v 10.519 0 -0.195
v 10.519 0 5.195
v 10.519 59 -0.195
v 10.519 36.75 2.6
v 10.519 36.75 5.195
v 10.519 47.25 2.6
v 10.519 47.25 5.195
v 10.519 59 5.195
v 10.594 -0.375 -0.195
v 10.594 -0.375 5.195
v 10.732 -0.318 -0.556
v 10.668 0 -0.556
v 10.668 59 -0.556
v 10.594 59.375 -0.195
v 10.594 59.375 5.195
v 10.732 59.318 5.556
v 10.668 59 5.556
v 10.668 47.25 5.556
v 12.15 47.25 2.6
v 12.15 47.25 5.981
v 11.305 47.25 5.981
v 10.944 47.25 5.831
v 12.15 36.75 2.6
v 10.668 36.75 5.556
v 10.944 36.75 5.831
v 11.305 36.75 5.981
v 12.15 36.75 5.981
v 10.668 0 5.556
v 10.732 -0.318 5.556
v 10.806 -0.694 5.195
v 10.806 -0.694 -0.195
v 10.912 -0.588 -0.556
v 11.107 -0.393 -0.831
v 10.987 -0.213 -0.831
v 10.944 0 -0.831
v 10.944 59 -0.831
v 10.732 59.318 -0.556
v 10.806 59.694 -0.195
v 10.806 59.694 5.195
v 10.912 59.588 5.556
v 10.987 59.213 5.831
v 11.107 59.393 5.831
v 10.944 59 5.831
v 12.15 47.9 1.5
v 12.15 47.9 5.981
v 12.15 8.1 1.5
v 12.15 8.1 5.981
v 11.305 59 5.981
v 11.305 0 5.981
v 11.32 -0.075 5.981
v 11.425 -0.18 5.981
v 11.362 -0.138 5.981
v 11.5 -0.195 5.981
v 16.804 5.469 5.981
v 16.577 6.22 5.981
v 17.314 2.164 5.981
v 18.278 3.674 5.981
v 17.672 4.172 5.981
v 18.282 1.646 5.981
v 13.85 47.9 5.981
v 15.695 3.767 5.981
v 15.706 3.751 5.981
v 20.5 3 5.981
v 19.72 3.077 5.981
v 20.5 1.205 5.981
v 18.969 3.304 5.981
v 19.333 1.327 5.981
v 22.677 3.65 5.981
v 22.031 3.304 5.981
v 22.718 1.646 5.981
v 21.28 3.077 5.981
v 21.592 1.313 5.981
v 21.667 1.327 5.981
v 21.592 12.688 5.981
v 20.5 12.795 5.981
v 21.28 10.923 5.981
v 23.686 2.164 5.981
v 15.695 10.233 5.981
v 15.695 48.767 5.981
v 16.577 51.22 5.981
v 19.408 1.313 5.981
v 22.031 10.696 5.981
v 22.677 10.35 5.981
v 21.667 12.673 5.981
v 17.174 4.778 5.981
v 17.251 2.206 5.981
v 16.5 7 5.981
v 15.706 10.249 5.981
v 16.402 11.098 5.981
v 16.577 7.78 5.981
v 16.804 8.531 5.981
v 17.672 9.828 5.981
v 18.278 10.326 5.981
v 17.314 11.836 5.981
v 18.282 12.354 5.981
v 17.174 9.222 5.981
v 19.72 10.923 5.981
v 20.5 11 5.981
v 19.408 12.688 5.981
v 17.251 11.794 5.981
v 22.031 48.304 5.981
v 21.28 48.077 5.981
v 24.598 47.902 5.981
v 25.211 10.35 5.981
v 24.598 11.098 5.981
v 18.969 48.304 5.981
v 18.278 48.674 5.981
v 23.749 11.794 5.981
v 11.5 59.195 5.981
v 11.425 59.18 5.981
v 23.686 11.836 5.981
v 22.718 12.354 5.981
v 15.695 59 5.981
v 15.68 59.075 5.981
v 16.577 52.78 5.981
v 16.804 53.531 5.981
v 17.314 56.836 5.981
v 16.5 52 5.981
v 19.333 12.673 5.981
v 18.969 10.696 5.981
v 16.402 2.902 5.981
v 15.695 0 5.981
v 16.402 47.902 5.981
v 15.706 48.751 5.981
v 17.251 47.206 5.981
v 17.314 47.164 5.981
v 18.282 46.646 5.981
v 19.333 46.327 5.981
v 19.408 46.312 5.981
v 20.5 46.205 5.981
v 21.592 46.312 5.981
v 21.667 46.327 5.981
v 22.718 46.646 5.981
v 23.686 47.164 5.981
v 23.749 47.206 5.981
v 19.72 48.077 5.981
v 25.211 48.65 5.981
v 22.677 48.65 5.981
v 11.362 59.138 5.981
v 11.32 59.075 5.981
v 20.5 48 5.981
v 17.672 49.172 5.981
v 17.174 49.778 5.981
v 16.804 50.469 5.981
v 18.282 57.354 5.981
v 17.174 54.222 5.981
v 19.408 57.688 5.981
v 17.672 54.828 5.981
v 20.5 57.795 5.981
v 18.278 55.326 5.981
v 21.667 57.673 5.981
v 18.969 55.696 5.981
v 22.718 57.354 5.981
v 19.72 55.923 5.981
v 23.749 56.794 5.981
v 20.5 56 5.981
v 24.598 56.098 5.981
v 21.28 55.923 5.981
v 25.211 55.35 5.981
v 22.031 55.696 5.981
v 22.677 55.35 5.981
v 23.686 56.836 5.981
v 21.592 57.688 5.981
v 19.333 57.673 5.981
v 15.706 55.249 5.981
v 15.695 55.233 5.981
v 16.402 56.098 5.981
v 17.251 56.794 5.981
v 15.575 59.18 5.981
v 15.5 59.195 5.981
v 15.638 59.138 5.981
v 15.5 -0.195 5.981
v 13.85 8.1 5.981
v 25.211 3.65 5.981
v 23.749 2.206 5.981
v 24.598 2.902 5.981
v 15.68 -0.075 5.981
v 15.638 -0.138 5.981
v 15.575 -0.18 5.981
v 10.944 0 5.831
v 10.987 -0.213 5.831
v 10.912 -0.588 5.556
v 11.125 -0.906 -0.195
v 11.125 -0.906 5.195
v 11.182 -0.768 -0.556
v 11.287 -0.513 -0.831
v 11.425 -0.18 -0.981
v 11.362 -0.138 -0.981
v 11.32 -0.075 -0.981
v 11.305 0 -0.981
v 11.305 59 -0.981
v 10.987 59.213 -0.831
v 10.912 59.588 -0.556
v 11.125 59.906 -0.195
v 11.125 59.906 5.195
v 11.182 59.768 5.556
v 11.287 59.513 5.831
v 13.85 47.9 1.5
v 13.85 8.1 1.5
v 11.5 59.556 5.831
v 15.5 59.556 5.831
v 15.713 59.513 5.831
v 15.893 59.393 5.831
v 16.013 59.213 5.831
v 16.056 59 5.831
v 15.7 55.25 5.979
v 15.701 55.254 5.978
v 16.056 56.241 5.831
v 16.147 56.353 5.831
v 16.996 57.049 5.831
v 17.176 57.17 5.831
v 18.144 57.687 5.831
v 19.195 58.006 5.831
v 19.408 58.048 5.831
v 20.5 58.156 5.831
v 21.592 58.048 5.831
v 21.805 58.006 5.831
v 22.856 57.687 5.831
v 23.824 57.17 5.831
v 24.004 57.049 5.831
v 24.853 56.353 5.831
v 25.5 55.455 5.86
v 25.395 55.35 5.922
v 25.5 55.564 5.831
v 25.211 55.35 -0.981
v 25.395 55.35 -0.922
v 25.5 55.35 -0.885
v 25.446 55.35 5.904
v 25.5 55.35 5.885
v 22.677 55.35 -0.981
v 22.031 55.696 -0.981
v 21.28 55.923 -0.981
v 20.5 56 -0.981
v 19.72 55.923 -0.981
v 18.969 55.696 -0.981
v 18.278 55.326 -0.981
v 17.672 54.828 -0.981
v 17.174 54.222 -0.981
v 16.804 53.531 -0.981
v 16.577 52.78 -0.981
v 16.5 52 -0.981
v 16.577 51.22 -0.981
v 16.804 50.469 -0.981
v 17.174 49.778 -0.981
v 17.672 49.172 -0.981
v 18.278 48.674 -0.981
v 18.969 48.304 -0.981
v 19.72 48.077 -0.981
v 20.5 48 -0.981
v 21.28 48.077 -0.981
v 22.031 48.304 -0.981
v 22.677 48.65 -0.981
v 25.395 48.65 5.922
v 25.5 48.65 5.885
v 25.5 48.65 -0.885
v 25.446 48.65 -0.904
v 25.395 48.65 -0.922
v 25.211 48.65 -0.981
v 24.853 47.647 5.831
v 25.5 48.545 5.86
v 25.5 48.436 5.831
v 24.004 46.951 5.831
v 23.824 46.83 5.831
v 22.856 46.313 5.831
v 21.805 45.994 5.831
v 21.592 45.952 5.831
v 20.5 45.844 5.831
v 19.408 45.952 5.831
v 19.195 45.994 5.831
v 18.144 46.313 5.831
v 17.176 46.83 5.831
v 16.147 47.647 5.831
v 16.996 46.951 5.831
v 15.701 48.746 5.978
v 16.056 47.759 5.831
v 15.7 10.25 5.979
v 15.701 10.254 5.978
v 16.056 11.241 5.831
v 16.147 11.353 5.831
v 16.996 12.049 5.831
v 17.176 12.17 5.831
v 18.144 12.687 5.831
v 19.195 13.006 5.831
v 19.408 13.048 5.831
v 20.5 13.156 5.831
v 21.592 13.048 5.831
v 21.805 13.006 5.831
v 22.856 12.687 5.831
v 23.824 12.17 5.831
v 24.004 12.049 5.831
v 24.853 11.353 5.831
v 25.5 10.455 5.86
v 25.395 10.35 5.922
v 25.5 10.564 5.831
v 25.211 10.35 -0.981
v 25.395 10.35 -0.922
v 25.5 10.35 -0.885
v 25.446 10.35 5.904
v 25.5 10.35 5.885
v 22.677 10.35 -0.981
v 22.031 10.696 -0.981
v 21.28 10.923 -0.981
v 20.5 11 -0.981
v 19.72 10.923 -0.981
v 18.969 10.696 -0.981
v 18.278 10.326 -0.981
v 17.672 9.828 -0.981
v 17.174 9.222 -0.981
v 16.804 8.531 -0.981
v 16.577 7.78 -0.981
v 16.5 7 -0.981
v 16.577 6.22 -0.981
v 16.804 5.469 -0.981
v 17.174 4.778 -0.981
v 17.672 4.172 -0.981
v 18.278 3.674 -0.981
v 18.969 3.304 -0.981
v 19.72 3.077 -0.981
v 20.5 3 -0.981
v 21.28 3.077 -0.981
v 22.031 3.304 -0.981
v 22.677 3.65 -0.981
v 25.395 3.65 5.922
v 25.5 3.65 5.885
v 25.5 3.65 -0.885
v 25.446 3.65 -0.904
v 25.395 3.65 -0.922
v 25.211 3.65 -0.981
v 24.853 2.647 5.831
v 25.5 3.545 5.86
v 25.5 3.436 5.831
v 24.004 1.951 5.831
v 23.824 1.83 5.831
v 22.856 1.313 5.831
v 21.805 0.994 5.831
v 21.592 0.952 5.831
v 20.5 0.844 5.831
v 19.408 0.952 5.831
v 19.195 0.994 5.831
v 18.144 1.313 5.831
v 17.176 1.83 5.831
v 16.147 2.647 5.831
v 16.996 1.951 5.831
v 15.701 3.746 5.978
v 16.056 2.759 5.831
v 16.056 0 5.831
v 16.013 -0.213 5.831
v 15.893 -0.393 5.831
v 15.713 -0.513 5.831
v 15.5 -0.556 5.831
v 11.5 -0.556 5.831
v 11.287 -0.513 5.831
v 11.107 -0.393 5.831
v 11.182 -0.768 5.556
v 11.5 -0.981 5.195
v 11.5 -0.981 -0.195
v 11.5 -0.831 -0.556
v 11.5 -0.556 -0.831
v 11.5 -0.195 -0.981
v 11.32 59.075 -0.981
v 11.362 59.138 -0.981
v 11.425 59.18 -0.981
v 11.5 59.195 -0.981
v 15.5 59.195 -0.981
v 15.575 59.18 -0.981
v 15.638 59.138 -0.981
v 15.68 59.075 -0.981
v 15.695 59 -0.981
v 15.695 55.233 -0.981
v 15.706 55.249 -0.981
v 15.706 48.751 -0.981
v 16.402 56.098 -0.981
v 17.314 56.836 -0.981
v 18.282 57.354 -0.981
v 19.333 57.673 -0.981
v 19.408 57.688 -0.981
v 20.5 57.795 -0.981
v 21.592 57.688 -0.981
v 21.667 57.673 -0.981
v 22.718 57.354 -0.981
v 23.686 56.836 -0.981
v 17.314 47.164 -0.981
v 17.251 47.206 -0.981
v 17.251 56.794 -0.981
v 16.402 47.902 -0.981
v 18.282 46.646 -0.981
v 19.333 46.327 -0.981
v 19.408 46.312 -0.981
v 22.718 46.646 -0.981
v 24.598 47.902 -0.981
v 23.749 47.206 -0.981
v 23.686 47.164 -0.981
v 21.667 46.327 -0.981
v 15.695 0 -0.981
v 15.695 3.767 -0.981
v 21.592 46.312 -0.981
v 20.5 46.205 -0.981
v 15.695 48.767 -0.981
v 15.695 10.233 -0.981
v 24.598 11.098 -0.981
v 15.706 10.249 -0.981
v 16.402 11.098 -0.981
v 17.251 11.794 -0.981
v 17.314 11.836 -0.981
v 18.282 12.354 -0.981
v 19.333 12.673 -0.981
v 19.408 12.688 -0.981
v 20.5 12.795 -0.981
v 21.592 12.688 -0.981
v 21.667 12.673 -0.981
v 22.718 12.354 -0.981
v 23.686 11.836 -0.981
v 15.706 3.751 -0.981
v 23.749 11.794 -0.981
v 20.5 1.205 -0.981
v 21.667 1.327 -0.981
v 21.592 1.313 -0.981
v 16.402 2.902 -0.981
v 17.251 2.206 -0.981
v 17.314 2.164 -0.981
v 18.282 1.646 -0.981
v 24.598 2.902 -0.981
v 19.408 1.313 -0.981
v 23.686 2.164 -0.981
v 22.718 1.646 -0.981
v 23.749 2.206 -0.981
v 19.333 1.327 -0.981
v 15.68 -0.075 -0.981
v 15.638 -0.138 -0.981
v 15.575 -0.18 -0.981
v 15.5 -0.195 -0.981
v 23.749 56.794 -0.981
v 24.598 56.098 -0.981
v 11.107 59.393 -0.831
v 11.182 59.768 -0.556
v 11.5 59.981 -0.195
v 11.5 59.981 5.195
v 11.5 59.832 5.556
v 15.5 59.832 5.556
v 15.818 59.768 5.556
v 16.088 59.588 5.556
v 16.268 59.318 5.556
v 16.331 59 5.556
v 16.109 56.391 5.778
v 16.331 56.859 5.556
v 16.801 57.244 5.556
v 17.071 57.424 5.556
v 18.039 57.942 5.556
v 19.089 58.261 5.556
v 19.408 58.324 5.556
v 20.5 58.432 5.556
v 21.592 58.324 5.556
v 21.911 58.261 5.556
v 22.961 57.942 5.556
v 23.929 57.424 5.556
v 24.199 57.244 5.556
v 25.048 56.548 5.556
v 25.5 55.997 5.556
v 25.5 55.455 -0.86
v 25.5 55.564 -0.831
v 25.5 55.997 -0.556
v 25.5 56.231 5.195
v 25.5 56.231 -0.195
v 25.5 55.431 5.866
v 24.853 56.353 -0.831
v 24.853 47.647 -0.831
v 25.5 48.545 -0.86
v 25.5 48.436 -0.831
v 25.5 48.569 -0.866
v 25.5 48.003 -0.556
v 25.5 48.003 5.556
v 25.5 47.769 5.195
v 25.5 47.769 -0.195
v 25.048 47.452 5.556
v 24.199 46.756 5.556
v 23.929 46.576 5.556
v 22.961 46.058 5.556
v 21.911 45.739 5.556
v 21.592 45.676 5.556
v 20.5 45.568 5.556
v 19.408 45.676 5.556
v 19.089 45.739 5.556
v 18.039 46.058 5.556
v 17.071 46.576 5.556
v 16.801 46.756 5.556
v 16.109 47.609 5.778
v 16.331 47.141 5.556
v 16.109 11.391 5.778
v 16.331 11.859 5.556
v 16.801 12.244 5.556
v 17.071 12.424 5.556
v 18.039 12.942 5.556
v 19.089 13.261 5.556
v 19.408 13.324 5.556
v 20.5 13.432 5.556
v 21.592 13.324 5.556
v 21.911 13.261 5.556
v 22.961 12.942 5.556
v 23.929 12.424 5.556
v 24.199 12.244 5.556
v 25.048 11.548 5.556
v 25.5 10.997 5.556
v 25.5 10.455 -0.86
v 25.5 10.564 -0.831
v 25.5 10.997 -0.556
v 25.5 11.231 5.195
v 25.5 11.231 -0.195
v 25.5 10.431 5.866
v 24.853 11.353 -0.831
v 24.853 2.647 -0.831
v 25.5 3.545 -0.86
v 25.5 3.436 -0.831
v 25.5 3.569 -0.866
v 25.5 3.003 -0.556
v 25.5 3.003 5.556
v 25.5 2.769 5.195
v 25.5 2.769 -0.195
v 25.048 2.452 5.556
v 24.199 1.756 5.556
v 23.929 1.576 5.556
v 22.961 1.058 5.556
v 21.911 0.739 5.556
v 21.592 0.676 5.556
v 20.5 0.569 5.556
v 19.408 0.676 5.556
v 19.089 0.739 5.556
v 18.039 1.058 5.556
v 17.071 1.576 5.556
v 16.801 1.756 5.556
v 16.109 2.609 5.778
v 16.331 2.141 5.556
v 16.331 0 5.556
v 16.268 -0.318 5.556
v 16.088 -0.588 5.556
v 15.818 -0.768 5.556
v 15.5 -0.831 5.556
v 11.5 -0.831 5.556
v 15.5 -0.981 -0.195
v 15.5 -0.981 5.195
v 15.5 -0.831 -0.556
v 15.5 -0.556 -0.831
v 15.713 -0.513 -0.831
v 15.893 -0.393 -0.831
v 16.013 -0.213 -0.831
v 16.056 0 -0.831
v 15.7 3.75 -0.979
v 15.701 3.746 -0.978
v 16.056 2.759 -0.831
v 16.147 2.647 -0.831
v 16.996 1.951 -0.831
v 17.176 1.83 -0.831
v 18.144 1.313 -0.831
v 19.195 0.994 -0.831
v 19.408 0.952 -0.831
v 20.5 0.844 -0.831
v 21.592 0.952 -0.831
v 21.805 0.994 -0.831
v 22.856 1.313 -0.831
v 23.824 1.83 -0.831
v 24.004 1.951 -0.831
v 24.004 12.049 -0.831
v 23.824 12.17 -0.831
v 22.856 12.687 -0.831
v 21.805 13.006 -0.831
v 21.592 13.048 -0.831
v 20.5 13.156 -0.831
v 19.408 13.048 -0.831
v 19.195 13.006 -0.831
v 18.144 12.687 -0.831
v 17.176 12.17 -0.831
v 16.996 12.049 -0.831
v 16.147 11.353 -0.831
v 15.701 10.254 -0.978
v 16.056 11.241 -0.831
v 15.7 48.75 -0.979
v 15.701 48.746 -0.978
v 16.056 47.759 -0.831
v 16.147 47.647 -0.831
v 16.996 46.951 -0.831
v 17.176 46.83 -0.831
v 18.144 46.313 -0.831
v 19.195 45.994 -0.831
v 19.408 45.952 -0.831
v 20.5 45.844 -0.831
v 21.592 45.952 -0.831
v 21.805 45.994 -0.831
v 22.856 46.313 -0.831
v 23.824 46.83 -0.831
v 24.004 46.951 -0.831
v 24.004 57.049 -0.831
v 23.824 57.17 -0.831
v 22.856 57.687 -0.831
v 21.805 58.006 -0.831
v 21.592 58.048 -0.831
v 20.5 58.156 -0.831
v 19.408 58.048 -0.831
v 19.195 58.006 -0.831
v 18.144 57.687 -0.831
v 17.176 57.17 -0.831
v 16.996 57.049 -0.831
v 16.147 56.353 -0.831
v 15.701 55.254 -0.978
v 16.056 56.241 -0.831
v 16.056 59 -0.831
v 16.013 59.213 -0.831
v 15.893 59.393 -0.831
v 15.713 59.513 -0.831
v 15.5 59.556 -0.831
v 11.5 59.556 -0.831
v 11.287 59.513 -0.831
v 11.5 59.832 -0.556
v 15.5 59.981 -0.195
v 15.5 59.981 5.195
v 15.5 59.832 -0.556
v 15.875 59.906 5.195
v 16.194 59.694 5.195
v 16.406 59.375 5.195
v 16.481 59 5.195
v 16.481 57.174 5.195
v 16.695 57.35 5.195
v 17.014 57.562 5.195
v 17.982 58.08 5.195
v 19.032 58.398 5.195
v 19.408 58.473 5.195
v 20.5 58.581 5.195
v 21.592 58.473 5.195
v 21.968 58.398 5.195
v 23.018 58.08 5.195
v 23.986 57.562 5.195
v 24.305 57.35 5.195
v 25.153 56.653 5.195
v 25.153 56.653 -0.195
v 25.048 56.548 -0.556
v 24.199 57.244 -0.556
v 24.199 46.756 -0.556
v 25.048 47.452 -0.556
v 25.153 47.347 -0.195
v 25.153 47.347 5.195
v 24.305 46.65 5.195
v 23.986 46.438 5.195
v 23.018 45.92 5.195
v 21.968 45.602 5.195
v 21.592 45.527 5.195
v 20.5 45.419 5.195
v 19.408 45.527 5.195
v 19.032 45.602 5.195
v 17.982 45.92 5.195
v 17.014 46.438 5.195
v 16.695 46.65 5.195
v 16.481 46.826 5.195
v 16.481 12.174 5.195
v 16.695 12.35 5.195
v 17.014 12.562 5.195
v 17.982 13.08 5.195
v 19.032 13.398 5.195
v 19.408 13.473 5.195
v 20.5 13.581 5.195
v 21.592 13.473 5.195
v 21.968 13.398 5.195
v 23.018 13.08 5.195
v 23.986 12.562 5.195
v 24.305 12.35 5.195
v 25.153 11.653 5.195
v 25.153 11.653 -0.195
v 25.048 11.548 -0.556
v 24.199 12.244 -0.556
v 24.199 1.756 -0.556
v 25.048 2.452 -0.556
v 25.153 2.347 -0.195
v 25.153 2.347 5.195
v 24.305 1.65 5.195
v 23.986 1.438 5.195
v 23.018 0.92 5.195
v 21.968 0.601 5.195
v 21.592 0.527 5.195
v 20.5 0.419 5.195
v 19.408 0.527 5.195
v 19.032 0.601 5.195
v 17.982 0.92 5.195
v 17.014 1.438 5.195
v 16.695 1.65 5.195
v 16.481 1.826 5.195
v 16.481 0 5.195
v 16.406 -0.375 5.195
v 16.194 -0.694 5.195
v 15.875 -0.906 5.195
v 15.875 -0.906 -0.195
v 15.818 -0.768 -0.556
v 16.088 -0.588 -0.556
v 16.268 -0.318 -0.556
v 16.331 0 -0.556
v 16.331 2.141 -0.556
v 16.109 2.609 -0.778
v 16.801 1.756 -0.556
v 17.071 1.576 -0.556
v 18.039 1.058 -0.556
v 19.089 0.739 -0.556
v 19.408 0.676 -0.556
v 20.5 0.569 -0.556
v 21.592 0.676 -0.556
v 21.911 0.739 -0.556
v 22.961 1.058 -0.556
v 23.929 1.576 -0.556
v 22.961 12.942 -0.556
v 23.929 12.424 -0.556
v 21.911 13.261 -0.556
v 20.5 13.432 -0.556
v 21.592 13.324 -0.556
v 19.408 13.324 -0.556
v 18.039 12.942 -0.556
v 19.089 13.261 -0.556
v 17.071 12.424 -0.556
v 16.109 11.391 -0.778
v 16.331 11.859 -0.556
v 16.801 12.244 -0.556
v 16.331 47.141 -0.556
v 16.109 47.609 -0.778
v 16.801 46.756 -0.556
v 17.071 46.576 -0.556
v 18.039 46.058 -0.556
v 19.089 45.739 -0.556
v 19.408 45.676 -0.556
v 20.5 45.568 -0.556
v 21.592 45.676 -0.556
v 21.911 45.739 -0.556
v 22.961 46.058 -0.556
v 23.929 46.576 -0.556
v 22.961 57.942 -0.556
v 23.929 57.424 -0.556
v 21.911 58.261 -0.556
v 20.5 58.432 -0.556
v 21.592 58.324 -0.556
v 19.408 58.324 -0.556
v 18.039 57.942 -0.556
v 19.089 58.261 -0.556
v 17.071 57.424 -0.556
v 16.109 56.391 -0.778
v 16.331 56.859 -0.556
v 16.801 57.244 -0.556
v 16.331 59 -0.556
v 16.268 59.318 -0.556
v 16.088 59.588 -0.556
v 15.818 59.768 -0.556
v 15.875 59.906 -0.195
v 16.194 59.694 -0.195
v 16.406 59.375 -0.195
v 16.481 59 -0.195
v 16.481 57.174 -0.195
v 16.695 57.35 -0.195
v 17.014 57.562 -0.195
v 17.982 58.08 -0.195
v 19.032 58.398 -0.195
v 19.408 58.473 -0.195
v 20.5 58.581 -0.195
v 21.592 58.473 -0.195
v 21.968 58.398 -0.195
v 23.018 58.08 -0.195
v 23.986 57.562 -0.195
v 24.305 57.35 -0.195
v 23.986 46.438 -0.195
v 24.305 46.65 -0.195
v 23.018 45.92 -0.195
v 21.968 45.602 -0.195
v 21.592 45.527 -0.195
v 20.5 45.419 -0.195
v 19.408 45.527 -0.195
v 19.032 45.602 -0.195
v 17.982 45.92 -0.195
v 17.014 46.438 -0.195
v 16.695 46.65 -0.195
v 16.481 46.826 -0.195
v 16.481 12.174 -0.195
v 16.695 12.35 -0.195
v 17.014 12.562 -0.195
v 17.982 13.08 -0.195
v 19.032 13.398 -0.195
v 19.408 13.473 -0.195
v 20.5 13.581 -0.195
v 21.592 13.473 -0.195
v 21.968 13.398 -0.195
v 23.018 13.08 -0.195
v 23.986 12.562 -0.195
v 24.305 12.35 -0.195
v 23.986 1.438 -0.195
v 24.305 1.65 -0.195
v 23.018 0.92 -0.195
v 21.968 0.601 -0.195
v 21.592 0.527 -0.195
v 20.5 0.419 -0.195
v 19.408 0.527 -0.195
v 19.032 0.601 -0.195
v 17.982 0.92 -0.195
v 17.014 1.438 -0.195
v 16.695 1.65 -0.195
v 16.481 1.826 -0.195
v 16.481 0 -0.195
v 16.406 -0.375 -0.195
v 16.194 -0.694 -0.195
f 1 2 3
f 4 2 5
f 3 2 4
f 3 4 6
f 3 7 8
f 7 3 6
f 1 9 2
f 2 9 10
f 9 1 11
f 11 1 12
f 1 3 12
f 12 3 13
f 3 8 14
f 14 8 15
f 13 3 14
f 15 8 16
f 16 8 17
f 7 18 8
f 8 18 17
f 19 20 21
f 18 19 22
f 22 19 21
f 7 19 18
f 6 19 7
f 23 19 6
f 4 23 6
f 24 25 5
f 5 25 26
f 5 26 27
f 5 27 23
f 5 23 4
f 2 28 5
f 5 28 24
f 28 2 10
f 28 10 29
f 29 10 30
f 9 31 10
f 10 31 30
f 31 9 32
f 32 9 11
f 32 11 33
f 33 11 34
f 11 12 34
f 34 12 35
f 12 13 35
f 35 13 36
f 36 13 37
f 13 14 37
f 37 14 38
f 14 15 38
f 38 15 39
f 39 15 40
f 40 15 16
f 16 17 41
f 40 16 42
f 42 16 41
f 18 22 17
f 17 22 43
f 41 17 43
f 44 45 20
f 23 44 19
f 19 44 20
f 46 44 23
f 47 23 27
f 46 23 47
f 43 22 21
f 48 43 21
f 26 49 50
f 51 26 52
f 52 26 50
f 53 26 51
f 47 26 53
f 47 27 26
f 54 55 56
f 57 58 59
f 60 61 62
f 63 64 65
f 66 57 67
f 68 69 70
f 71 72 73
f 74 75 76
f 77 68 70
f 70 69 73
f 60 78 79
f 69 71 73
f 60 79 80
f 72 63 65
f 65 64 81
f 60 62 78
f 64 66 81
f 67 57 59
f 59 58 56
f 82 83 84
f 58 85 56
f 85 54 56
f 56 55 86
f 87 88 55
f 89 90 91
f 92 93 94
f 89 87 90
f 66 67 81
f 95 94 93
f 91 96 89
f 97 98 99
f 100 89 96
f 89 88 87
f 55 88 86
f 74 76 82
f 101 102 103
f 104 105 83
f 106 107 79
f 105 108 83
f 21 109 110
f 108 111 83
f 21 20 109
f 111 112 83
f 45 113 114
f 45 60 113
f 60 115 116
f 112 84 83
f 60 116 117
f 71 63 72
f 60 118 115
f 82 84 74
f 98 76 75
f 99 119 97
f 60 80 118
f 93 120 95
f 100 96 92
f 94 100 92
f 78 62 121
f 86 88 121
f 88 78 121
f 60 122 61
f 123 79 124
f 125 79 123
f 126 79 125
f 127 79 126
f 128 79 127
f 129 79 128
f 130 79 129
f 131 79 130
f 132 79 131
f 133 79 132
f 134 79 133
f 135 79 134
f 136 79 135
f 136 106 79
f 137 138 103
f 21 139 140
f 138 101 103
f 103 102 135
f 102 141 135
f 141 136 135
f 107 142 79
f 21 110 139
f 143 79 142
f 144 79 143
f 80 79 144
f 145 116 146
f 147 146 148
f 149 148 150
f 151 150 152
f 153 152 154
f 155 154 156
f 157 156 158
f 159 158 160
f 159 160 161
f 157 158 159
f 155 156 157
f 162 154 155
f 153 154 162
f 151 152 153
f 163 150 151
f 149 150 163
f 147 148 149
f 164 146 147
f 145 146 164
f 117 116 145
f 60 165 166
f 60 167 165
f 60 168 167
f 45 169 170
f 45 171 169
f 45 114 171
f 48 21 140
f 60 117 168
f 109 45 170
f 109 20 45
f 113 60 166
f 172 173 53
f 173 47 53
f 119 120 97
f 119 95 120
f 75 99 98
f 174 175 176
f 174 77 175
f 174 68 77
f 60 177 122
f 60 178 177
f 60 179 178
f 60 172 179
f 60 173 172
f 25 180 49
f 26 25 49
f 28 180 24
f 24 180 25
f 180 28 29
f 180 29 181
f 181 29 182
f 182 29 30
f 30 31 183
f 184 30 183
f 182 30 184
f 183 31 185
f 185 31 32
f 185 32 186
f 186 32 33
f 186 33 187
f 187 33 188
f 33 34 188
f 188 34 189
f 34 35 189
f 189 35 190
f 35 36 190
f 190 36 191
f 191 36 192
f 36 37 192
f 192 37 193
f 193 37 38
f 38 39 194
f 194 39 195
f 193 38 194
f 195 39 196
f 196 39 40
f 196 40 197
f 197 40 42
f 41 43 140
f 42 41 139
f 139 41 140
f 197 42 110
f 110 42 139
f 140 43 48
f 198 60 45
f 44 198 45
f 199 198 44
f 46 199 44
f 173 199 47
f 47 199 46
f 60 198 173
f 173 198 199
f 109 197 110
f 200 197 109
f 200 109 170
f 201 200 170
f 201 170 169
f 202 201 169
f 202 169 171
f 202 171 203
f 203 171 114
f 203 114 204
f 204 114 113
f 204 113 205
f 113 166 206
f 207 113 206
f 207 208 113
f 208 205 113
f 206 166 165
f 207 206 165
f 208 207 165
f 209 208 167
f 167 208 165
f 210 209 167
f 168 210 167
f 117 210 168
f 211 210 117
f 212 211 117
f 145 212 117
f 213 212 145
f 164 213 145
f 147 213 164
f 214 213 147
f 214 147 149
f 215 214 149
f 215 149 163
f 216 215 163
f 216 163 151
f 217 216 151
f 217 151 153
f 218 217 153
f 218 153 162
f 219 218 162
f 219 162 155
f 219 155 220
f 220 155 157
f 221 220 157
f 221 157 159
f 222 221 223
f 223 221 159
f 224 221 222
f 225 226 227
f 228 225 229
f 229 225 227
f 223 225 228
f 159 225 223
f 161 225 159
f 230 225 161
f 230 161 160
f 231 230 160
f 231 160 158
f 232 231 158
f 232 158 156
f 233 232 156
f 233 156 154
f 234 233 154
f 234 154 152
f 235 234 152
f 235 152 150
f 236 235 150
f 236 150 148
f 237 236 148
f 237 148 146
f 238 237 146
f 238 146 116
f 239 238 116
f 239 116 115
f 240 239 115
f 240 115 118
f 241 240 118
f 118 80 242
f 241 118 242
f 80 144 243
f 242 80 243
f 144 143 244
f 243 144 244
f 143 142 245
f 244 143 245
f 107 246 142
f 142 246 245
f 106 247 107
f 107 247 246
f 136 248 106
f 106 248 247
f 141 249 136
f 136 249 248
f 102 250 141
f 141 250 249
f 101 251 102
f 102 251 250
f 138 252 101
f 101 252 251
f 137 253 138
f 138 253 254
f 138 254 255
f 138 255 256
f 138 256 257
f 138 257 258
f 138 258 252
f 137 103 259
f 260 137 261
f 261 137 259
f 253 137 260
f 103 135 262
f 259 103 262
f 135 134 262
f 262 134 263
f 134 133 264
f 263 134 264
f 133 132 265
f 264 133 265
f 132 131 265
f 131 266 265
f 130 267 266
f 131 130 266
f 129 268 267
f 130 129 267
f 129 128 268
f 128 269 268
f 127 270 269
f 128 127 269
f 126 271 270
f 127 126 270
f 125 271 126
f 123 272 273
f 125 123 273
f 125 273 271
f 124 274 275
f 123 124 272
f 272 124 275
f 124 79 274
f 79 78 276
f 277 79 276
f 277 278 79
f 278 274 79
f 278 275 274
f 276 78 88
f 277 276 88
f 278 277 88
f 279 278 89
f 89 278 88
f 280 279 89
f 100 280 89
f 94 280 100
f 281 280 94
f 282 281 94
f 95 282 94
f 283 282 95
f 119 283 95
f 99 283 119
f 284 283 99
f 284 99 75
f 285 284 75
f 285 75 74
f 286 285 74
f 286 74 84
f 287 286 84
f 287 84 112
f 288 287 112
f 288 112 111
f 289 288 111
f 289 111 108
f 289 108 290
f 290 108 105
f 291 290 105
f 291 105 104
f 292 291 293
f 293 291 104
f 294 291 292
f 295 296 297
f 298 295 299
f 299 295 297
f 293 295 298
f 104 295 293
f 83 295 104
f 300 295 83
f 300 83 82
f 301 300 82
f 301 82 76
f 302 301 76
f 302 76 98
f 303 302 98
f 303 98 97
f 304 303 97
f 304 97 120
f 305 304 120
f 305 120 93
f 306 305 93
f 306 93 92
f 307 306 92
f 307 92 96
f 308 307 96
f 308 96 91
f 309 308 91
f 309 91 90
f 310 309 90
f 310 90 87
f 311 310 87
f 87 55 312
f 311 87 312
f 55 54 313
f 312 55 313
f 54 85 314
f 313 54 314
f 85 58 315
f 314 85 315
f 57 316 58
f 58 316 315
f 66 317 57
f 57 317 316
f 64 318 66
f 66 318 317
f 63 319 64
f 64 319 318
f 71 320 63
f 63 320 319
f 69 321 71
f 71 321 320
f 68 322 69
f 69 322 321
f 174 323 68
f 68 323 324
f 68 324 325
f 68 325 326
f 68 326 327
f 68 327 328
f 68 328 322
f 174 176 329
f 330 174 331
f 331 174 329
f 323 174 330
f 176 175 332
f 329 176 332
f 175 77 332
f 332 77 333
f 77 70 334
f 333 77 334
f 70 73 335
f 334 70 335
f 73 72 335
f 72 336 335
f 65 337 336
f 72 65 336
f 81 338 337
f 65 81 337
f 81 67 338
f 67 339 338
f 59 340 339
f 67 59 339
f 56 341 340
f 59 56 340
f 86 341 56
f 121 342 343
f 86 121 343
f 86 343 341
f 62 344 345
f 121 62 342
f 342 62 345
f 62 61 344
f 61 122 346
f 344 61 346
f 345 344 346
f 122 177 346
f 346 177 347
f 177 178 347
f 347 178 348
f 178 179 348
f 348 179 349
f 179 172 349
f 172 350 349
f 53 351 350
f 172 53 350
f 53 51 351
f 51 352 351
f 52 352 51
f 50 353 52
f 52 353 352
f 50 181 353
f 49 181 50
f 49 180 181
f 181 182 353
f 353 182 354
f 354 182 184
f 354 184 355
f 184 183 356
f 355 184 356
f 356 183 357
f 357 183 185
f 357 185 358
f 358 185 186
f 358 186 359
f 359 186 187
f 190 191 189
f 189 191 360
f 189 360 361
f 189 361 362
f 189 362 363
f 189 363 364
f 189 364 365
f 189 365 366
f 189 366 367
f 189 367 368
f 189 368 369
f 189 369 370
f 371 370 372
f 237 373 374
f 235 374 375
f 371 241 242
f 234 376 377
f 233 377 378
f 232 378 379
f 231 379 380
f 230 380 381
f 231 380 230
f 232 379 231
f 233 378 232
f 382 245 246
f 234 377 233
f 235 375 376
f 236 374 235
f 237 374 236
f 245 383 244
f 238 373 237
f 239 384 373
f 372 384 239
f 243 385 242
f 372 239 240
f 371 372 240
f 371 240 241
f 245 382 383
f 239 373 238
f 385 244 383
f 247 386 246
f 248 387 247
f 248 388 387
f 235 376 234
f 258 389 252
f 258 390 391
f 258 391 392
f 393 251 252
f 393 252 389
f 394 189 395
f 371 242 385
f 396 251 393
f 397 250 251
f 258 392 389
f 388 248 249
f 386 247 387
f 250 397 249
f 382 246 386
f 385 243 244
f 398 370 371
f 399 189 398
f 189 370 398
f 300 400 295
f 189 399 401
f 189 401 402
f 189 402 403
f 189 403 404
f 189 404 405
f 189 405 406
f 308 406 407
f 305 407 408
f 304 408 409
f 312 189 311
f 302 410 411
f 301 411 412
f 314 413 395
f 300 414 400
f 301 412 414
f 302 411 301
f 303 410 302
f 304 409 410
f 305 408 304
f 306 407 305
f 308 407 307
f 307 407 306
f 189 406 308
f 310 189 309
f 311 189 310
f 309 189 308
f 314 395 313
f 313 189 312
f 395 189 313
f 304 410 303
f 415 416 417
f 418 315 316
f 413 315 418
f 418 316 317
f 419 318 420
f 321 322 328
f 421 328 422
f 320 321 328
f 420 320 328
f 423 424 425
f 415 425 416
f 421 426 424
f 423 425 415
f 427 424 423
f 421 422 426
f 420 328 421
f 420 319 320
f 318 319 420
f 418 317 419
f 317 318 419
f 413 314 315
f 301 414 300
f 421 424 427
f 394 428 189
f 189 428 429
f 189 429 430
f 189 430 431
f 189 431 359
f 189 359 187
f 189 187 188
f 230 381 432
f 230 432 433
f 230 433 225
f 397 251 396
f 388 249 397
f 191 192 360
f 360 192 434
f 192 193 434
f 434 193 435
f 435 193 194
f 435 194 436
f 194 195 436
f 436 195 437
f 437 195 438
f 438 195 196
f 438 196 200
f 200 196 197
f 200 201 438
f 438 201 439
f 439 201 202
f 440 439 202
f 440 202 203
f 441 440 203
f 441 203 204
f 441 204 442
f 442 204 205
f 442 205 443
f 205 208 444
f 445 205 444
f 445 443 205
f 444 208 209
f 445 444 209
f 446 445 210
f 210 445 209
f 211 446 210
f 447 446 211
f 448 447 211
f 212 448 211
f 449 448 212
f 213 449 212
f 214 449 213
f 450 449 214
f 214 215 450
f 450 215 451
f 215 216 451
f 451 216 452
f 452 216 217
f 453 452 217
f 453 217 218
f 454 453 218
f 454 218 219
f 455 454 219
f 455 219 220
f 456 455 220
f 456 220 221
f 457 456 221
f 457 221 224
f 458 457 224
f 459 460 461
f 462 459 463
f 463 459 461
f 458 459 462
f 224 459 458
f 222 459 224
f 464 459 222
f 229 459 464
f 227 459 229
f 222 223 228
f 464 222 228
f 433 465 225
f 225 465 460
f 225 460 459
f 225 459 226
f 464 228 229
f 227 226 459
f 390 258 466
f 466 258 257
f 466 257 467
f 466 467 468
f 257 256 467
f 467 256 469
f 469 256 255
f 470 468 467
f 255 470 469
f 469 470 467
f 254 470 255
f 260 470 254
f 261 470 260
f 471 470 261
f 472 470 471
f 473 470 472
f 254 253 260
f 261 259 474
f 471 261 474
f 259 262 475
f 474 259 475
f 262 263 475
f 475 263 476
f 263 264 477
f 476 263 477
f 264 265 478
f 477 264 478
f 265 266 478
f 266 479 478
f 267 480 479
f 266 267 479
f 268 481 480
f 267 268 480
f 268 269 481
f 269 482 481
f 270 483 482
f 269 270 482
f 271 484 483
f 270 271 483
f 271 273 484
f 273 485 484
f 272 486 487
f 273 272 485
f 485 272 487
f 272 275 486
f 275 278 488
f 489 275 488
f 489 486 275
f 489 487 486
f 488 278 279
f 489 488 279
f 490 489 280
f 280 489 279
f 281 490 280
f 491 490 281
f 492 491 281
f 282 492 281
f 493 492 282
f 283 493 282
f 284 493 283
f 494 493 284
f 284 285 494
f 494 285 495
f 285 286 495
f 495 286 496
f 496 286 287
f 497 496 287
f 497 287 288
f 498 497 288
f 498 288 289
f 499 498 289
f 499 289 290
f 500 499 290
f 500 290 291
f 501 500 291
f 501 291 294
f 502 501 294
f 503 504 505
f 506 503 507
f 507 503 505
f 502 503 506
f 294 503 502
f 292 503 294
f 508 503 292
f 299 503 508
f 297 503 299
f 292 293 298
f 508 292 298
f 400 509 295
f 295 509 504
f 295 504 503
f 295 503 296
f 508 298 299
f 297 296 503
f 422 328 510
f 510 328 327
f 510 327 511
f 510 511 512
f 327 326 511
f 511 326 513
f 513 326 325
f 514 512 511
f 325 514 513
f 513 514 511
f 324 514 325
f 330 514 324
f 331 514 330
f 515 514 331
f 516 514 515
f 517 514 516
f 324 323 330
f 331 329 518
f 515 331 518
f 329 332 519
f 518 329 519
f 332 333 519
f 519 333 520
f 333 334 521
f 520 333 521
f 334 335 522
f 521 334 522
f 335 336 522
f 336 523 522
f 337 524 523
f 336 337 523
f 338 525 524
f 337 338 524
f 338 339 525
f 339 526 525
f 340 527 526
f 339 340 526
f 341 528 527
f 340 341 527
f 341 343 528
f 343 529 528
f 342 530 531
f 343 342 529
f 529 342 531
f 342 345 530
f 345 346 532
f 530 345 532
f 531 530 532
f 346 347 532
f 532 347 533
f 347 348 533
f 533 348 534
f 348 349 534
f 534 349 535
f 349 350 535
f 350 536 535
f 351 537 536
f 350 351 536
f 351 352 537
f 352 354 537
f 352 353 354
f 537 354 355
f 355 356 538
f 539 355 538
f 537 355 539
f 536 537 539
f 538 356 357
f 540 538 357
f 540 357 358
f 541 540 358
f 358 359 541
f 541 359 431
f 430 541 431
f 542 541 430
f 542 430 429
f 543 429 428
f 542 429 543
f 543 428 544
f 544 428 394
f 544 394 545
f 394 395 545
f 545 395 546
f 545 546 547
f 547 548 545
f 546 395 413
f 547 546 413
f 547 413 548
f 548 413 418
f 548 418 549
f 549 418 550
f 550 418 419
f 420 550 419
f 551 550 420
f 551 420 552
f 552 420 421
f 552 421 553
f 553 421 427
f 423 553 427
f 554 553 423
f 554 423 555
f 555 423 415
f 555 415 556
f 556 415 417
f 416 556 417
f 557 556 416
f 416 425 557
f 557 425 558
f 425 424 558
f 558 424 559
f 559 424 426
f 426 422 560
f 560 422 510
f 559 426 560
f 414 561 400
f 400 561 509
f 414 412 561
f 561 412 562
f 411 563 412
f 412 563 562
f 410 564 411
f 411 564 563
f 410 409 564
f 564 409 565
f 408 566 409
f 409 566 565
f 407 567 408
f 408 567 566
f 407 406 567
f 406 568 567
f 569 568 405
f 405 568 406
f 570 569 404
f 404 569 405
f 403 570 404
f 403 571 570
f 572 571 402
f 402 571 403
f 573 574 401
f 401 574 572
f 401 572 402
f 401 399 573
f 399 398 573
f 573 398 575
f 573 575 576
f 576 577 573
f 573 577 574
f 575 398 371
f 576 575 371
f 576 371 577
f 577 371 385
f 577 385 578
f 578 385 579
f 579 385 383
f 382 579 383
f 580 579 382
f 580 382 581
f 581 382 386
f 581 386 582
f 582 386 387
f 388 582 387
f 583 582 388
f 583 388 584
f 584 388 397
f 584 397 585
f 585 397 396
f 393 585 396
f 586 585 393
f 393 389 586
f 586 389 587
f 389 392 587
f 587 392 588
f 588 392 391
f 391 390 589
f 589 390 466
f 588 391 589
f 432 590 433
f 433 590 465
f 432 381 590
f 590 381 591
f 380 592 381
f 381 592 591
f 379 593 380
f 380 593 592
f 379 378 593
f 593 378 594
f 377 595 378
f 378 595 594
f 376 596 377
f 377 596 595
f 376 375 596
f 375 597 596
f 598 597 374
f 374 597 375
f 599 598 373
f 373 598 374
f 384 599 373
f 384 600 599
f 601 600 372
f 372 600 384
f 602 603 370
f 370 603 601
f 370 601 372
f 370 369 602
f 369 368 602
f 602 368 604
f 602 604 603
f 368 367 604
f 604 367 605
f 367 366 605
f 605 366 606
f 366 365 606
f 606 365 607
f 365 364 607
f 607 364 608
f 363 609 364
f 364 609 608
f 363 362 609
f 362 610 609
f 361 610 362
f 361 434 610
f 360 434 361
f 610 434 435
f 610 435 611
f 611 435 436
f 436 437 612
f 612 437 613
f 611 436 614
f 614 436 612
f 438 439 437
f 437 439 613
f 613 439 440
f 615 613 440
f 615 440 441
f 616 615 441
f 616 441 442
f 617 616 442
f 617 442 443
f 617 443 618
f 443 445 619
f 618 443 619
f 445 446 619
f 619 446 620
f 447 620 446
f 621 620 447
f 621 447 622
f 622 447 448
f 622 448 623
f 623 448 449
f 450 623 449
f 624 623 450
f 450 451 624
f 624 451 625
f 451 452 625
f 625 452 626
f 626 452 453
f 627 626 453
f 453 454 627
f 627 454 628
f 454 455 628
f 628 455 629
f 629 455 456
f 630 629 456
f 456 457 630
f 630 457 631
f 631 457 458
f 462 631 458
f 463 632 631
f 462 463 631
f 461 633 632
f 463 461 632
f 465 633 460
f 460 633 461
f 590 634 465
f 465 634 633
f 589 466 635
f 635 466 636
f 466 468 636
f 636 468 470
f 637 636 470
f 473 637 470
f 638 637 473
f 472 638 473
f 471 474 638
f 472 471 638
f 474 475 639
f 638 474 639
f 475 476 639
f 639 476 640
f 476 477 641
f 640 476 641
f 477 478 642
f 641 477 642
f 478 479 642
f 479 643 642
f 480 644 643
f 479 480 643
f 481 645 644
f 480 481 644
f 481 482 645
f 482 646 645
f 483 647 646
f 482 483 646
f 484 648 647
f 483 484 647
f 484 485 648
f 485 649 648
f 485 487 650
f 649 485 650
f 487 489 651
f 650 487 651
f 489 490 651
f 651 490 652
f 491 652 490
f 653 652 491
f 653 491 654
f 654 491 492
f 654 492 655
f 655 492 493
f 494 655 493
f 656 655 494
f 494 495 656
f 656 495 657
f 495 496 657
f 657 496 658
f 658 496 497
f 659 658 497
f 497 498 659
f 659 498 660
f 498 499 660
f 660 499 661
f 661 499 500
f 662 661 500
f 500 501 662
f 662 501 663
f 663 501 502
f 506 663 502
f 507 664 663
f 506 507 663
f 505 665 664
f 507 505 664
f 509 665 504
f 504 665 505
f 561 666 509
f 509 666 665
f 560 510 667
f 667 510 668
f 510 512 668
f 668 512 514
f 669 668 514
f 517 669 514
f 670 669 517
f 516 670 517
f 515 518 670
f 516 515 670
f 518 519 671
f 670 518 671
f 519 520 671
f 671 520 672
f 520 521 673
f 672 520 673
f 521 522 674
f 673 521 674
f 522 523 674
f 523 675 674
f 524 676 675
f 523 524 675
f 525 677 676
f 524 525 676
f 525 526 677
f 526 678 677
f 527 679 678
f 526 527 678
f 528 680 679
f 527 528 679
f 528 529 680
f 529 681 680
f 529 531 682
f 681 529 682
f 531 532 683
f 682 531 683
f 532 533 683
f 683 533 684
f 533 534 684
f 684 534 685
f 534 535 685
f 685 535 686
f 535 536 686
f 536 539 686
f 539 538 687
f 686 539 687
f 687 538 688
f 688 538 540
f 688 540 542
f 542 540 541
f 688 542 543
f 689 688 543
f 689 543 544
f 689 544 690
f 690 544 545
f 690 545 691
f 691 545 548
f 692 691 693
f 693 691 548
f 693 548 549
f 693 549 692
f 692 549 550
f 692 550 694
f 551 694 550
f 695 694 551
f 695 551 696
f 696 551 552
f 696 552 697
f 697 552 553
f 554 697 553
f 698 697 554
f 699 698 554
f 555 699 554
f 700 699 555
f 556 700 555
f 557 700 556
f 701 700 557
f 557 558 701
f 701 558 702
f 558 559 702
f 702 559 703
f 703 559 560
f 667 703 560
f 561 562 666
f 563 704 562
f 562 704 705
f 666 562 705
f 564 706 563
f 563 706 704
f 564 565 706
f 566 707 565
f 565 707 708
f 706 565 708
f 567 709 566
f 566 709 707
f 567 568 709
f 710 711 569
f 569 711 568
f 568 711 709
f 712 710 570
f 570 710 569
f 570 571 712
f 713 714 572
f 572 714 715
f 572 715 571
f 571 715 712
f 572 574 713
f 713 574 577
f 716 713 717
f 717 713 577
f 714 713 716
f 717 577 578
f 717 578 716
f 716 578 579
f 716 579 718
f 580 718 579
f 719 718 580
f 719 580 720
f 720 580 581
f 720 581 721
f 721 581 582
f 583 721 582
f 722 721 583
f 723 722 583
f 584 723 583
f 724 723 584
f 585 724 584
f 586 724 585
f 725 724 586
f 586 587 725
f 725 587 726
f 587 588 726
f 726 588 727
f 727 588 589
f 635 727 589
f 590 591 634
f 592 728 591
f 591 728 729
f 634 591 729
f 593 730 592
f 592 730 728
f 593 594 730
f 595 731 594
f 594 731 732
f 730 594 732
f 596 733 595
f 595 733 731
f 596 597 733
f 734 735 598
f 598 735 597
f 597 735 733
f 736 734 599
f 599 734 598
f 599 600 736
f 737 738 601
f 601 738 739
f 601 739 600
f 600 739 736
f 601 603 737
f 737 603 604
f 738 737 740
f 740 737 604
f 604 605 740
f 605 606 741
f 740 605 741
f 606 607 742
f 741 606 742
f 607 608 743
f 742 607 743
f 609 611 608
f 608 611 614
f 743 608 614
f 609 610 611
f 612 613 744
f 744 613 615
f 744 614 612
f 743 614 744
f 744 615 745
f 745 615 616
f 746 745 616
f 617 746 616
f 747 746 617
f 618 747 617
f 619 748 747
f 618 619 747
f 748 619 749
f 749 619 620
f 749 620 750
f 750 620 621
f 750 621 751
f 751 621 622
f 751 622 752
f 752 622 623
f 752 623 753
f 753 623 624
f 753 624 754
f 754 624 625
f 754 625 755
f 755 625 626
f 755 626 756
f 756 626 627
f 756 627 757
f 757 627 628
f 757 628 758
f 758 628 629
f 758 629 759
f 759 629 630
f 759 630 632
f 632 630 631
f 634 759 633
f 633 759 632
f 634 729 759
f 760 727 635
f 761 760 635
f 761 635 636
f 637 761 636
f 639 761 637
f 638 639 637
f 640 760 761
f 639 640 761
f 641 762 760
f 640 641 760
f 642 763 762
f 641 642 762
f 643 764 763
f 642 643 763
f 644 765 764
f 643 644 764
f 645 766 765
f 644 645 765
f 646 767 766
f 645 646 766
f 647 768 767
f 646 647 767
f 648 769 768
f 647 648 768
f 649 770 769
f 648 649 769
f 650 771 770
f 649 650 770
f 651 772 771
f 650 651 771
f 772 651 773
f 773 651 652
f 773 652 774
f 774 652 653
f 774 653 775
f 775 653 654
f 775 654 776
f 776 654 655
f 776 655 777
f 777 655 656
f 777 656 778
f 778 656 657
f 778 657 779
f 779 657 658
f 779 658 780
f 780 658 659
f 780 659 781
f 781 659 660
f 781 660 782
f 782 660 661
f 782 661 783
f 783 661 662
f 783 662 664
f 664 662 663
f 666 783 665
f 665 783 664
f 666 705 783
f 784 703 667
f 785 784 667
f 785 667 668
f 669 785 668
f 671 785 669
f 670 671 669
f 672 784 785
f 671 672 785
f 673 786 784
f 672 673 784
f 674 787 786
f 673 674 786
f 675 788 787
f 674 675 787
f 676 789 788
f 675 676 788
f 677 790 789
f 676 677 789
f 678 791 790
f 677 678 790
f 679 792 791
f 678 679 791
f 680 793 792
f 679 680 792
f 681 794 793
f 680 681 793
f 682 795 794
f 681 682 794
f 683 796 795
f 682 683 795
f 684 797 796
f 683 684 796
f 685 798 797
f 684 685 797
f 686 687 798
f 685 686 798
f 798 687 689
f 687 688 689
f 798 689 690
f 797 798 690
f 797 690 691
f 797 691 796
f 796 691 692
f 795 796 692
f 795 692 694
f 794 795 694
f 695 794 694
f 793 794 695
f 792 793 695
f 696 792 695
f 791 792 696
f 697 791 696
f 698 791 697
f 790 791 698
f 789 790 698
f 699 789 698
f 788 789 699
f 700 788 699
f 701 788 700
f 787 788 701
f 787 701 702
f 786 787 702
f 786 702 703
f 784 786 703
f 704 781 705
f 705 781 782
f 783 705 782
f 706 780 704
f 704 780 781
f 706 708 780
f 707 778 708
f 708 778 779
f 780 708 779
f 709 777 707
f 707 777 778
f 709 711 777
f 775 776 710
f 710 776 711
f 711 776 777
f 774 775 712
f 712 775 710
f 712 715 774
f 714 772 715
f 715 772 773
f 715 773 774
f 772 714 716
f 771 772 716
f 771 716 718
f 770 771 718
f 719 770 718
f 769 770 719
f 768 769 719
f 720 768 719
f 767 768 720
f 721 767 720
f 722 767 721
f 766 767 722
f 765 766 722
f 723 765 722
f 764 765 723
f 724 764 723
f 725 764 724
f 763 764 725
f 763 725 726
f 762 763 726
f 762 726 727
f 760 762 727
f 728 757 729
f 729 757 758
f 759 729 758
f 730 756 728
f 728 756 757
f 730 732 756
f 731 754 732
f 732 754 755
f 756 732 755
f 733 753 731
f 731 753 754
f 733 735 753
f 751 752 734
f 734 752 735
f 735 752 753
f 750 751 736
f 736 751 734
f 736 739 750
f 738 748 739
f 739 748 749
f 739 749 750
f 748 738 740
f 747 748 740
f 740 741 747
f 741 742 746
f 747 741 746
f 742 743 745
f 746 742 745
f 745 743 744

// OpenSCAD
//-- Prusa i3 X-axis Makerbot-style endstop holder
//-- by AndrewBCN - Barcelona, Spain - December 2014
//-- Remix from i3 X Endstop Mount for Sainsmart endstops
//-- by Abby Jones, thing #491859
//-- Note that there are various similar designs on
//-- Thingiverse, so it's difficult to provide proper
//-- attribution. Oh well, I do what I can...
//-- GPLV3

//-- import test
//-- needs the file http://www.thingiverse.com/download:491859

$fn=32;

//-- Modules

module xeh() {
  // part imported, rotated (for comparison)
  rotate([0,0,0]) translate([0,38,0]) import("i3xend.stl");
}

module i3endhold1() {
  // base shape
  translate([10+1.5,0,0]) cube([4,59,5]); 
  translate([10+4.5+6,7,0]) cylinder(r=5.6,h=5);
  translate([10+4.5+6,45+7,0]) cylinder(r=5.6,h=5);
}
module i3endhold2() {
  // beautify (takes a minute or so to calculate)
  minkowski() {
    i3endhold1();
    sphere(r=1, $fn=16);
  }
}
module i3endhold3() {
  difference() { 
    i3endhold2();
    // holes and cutouts
    translate([10+4.5+6,7,-1]) cylinder(r=4,h=20);
    translate([10+4.5+6,45+7,-1]) cylinder(r=4,h=20);
    translate([10+4.5+13,7,4]) cube([15,6.7,10],center=true); 
    translate([10+4.5+13,45+7,4]) cube([15,6.7,10],center=true); 
    translate([10+4.5+13+5.5,32,4]) cube([15,65,10],center=true);
    // slot for mechanical endstop
    translate([10+3,28,3.9]) cube([1.7,39.8,4.8],center=true); 
    translate([10,42,5]) cube([6,10.5,4.8],center=true); 
  }
}
//-- Print the part
// xeh();
i3endhold3();
